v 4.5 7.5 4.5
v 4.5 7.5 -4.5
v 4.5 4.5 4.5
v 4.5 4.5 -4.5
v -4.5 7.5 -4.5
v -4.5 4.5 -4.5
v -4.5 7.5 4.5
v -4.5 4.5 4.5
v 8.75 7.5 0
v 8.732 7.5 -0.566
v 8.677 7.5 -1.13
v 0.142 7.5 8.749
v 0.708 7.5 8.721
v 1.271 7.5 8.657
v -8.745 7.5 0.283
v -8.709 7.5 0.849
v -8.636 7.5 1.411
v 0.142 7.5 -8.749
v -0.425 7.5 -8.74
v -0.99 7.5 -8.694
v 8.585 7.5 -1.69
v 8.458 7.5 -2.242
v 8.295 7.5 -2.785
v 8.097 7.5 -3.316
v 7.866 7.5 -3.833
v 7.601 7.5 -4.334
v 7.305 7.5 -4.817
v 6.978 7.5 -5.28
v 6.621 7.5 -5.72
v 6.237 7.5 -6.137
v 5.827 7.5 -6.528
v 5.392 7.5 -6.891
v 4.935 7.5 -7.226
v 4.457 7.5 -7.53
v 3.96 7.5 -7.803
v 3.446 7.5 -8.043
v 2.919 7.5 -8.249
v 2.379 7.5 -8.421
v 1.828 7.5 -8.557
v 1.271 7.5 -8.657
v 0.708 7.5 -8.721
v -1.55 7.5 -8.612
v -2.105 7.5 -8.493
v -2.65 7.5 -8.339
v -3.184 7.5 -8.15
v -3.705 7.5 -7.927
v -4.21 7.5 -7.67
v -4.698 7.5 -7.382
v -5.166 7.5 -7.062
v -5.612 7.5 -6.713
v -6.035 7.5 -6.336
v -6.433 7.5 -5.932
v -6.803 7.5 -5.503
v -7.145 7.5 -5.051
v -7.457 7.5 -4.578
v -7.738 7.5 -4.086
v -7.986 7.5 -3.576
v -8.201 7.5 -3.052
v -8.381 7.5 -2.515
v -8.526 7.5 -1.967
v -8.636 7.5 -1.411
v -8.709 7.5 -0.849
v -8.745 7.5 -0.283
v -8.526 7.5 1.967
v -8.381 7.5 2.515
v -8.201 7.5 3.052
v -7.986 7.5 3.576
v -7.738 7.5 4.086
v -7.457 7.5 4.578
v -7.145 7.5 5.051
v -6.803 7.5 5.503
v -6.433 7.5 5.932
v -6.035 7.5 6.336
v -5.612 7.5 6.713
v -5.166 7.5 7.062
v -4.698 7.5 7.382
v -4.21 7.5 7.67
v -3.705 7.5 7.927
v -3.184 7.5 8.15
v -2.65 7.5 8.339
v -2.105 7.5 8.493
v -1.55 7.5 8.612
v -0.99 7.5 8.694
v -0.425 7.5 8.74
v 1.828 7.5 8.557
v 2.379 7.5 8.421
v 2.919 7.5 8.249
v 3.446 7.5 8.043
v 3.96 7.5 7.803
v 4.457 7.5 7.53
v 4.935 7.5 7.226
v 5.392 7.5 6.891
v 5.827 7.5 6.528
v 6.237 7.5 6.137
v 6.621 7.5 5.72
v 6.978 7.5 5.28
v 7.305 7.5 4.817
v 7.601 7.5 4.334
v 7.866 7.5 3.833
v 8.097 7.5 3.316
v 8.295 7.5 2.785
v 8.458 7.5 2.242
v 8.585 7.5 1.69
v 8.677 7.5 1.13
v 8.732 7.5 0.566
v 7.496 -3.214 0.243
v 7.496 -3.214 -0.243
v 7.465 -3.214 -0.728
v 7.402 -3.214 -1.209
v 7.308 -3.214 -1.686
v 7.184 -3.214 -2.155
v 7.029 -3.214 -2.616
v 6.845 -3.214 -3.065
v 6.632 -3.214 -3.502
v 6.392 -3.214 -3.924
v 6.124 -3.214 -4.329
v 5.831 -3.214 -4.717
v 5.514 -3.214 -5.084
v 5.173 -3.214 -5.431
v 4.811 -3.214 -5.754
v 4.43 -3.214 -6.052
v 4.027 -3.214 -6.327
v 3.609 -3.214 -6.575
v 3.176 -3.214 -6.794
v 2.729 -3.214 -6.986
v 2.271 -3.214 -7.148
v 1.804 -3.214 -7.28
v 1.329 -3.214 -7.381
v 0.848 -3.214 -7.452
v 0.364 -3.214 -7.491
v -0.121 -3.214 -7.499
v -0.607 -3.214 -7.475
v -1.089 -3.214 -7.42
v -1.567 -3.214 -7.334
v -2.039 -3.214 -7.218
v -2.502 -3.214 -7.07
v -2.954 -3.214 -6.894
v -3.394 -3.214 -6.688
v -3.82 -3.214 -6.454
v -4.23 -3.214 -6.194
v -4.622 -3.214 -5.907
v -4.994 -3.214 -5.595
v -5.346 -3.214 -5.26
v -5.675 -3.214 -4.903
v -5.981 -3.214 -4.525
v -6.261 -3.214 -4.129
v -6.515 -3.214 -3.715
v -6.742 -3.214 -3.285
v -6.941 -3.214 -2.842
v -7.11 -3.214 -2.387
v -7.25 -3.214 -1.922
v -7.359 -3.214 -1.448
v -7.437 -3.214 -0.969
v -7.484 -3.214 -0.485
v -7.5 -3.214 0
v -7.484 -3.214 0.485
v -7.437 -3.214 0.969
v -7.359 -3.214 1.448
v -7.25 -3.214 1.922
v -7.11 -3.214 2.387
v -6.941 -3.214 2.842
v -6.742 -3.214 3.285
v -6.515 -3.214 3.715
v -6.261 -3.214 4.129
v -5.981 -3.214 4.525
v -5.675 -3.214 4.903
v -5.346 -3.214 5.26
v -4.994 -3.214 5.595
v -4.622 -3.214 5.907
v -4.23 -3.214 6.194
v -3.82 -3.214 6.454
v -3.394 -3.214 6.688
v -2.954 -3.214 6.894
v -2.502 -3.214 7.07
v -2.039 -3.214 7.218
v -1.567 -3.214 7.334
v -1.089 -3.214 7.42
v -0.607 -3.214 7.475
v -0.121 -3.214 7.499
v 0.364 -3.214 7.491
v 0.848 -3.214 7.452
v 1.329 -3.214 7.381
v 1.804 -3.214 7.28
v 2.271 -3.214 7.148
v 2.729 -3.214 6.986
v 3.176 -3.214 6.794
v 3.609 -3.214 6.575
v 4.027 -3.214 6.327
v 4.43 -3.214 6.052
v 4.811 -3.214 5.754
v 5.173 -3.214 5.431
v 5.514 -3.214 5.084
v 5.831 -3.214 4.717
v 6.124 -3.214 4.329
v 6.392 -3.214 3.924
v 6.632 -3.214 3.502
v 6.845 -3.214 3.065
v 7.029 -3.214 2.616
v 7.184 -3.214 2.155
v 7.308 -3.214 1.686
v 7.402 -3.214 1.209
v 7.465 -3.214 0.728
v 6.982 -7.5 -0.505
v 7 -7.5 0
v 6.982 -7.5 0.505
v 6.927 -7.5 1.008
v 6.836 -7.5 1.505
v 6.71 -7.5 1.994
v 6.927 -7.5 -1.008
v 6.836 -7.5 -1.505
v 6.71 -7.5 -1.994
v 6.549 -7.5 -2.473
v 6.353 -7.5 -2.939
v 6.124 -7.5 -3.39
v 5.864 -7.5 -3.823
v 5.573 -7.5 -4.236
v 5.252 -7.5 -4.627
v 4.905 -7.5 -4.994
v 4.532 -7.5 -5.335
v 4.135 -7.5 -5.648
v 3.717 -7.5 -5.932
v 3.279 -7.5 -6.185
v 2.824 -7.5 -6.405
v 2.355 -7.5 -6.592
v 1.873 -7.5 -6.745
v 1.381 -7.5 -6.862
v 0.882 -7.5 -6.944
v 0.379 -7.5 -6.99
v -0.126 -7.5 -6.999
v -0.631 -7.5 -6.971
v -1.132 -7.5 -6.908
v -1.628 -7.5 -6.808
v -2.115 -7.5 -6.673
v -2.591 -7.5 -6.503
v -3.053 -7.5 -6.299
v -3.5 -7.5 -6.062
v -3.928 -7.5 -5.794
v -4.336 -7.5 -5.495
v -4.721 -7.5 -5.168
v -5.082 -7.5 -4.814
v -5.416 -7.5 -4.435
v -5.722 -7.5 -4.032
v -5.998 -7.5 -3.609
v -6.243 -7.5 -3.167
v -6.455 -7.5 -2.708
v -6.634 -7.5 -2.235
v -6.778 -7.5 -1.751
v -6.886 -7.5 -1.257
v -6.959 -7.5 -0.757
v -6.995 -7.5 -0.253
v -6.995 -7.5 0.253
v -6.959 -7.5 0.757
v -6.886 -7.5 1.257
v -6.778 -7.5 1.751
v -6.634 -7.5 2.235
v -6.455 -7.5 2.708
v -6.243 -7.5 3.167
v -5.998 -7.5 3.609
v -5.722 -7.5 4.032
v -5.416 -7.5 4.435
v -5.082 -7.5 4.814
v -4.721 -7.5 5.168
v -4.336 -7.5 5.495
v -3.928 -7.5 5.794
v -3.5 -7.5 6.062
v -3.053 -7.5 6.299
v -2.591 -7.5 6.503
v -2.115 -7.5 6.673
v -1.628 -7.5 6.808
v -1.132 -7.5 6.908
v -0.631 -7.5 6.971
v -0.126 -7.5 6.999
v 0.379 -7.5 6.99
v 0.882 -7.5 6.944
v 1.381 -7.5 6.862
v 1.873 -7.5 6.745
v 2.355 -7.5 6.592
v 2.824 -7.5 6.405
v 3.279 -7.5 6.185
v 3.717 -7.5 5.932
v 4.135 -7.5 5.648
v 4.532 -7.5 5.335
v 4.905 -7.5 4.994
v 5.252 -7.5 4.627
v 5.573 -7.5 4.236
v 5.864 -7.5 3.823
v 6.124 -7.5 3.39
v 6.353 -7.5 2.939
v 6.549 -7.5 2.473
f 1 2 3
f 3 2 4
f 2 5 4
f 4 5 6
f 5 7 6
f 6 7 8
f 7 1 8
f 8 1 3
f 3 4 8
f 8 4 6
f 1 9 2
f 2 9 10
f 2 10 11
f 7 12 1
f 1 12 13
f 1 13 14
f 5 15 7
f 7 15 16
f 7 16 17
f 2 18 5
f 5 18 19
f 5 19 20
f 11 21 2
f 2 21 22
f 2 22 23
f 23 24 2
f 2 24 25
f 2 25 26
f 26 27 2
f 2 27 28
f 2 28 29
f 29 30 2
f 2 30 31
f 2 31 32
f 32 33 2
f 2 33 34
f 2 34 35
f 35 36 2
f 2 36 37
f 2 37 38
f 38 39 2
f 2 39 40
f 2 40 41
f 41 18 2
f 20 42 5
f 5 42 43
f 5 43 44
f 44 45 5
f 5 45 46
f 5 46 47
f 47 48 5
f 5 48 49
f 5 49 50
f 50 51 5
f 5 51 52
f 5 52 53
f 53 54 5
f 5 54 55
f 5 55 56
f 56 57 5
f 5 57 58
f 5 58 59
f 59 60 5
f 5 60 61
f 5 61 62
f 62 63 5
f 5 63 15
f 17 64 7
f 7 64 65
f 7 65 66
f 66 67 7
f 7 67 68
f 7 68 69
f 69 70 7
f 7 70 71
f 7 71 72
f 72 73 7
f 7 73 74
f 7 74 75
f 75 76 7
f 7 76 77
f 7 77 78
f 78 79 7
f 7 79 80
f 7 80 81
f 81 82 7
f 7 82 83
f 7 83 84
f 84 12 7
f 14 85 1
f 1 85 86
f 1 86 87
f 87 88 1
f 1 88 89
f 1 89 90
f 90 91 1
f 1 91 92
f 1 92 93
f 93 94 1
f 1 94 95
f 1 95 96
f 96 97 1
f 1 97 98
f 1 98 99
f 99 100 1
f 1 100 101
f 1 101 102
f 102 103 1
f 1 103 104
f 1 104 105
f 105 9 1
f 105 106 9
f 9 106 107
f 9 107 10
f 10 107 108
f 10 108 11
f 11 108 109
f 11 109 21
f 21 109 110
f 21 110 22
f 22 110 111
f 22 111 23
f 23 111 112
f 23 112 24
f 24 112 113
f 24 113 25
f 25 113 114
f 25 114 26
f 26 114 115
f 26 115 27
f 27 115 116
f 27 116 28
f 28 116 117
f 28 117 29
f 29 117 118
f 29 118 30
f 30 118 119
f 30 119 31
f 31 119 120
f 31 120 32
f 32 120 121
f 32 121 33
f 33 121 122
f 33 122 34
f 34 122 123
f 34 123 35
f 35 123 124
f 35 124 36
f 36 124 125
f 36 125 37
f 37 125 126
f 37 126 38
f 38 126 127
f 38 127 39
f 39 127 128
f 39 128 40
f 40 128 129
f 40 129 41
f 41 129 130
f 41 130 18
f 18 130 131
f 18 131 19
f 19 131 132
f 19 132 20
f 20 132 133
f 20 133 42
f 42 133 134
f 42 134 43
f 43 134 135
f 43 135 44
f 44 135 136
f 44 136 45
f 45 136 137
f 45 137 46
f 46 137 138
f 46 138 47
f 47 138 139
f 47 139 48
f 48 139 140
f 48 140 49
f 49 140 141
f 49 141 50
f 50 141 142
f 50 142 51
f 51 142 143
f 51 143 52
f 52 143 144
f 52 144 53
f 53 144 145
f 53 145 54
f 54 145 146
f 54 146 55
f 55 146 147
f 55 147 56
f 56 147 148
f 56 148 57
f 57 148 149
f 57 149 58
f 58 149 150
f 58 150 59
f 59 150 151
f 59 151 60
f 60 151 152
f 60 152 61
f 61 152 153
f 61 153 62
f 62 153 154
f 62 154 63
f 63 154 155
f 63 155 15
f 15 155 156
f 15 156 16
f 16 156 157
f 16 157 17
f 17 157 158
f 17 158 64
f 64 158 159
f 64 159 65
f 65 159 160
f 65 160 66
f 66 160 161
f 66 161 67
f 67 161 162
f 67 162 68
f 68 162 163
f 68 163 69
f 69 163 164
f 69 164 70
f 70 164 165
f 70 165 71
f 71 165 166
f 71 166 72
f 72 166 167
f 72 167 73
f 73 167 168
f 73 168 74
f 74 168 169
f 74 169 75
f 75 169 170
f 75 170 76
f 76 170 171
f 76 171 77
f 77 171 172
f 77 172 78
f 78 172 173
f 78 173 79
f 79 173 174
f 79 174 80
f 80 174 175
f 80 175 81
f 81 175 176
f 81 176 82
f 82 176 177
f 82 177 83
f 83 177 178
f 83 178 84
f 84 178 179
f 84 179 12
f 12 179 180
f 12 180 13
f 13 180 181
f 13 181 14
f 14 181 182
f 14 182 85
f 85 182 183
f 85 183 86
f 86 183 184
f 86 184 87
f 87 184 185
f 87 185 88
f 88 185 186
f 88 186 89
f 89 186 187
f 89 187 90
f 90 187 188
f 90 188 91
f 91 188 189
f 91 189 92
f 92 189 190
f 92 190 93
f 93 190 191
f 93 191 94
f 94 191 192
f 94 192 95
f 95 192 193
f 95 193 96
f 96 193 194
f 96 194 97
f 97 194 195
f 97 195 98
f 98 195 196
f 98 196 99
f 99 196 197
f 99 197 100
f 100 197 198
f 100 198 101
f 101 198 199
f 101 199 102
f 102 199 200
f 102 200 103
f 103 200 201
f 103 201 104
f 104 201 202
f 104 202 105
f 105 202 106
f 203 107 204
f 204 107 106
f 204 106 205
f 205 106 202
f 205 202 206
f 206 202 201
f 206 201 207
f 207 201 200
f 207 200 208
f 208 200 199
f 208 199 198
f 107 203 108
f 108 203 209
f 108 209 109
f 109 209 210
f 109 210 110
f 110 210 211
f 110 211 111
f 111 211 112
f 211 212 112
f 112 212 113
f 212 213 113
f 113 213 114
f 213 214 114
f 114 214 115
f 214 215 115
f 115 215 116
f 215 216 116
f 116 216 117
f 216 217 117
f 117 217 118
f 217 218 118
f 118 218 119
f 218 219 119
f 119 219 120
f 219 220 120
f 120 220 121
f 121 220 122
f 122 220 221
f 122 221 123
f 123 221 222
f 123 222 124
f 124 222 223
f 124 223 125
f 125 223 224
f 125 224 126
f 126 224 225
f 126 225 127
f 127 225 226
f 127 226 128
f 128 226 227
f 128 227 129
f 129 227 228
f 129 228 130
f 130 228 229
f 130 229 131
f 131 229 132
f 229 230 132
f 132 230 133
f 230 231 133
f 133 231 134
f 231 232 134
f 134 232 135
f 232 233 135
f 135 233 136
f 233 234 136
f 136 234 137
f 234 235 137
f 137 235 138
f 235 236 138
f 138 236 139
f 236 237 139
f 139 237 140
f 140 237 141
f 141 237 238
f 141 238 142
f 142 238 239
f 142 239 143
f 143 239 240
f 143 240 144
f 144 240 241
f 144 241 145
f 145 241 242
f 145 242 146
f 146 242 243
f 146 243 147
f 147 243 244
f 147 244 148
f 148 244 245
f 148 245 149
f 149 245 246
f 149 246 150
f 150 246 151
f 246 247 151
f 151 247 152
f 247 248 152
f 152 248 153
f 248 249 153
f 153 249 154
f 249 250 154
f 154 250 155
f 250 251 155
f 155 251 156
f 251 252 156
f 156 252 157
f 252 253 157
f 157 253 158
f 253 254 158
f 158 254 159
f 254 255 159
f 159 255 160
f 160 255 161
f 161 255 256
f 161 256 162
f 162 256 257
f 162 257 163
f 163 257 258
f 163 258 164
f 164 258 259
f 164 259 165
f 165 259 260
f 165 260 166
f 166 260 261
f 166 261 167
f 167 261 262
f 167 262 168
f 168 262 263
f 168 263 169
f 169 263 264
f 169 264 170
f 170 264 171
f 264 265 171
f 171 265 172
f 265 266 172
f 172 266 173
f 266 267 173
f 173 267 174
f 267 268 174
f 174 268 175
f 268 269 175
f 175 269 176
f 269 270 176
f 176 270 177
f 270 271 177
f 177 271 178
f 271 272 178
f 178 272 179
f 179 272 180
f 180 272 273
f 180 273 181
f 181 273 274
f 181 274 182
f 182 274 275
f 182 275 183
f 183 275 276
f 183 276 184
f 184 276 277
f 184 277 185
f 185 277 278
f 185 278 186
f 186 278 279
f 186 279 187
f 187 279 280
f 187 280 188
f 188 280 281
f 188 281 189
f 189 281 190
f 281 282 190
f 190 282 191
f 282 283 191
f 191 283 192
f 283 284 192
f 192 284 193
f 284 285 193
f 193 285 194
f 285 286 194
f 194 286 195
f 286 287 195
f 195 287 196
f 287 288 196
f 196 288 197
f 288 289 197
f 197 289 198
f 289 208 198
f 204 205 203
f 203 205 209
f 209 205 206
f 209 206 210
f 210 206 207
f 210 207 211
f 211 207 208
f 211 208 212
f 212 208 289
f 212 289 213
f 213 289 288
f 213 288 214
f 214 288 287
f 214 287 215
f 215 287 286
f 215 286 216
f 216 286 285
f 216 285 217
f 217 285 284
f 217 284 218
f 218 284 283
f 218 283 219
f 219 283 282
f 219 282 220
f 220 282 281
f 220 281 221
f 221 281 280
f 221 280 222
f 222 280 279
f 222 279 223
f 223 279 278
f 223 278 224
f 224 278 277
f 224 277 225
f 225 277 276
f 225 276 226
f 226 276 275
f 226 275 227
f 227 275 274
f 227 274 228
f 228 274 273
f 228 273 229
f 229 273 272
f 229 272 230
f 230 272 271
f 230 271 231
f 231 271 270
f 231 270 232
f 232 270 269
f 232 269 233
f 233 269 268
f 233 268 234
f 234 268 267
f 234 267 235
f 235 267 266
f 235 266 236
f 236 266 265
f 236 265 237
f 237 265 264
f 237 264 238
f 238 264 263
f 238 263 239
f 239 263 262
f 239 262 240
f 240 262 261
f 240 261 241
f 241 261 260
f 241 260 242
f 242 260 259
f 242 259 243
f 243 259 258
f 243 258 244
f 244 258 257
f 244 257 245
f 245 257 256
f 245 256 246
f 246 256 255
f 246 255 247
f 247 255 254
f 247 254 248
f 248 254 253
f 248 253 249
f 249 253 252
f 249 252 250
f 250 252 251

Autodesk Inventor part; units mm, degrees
ref_plane "YZ Plane" through (0, 0, 0) normal (1, 0, 0) x (0, 1, 0)
ref_plane "XZ Plane" through (0, 0, 0) normal (0, 1, 0) x (-1, 0, 0)
ref_plane "XY Plane" through (0, 0, 0) normal (0, 0, 1) x (1, 0, 0)
sketch "Эскиз1" plane through (0, 0, 0) normal (0, 0, 1) x (1, 0, 0)
  line L0 (0, 7.5) -> (0, -7.5)
  line L1 (0, 7.5) -> (8.75, 7.5)
  line L2 (8.75, 7.5) -> (7, -7.5)
  line L3 (7, -7.5) -> (0, -7.5)
  point P0 (0, 0)
  point P1 (0, 0)
  dimension "d0" = 15
  dimension "d1" = 17.5
  dimension "d2" = 14
revolve "Вращение1" add sketch "Эскиз1" angle 360 about axis through (0, 7.5, 0) along (0, -1, 0)
thread "Резьба1" size "R 1/2" standard "ISO Taper" length 18.2
sketch "Эскиз3" plane through (0, 7.5, 0) normal (0, 1, 0) x (1, 0, 0)
  line L0 (-4.5, 4.5) -> (4.5, 4.5)
  line L1 (4.5, 4.5) -> (4.5, -4.5)
  line L2 (4.5, -4.5) -> (-4.5, -4.5)
  line L3 (-4.5, -4.5) -> (-4.5, 4.5)
  point P0 (0, 0)
  point P1 (-4.5, 0)
  point P2 (0, 4.5)
  dimension "d9" = 9
extrude "Выдавливание2" cut sketch "Эскиз3" against normal blind 3
properties part number "Пробка"
